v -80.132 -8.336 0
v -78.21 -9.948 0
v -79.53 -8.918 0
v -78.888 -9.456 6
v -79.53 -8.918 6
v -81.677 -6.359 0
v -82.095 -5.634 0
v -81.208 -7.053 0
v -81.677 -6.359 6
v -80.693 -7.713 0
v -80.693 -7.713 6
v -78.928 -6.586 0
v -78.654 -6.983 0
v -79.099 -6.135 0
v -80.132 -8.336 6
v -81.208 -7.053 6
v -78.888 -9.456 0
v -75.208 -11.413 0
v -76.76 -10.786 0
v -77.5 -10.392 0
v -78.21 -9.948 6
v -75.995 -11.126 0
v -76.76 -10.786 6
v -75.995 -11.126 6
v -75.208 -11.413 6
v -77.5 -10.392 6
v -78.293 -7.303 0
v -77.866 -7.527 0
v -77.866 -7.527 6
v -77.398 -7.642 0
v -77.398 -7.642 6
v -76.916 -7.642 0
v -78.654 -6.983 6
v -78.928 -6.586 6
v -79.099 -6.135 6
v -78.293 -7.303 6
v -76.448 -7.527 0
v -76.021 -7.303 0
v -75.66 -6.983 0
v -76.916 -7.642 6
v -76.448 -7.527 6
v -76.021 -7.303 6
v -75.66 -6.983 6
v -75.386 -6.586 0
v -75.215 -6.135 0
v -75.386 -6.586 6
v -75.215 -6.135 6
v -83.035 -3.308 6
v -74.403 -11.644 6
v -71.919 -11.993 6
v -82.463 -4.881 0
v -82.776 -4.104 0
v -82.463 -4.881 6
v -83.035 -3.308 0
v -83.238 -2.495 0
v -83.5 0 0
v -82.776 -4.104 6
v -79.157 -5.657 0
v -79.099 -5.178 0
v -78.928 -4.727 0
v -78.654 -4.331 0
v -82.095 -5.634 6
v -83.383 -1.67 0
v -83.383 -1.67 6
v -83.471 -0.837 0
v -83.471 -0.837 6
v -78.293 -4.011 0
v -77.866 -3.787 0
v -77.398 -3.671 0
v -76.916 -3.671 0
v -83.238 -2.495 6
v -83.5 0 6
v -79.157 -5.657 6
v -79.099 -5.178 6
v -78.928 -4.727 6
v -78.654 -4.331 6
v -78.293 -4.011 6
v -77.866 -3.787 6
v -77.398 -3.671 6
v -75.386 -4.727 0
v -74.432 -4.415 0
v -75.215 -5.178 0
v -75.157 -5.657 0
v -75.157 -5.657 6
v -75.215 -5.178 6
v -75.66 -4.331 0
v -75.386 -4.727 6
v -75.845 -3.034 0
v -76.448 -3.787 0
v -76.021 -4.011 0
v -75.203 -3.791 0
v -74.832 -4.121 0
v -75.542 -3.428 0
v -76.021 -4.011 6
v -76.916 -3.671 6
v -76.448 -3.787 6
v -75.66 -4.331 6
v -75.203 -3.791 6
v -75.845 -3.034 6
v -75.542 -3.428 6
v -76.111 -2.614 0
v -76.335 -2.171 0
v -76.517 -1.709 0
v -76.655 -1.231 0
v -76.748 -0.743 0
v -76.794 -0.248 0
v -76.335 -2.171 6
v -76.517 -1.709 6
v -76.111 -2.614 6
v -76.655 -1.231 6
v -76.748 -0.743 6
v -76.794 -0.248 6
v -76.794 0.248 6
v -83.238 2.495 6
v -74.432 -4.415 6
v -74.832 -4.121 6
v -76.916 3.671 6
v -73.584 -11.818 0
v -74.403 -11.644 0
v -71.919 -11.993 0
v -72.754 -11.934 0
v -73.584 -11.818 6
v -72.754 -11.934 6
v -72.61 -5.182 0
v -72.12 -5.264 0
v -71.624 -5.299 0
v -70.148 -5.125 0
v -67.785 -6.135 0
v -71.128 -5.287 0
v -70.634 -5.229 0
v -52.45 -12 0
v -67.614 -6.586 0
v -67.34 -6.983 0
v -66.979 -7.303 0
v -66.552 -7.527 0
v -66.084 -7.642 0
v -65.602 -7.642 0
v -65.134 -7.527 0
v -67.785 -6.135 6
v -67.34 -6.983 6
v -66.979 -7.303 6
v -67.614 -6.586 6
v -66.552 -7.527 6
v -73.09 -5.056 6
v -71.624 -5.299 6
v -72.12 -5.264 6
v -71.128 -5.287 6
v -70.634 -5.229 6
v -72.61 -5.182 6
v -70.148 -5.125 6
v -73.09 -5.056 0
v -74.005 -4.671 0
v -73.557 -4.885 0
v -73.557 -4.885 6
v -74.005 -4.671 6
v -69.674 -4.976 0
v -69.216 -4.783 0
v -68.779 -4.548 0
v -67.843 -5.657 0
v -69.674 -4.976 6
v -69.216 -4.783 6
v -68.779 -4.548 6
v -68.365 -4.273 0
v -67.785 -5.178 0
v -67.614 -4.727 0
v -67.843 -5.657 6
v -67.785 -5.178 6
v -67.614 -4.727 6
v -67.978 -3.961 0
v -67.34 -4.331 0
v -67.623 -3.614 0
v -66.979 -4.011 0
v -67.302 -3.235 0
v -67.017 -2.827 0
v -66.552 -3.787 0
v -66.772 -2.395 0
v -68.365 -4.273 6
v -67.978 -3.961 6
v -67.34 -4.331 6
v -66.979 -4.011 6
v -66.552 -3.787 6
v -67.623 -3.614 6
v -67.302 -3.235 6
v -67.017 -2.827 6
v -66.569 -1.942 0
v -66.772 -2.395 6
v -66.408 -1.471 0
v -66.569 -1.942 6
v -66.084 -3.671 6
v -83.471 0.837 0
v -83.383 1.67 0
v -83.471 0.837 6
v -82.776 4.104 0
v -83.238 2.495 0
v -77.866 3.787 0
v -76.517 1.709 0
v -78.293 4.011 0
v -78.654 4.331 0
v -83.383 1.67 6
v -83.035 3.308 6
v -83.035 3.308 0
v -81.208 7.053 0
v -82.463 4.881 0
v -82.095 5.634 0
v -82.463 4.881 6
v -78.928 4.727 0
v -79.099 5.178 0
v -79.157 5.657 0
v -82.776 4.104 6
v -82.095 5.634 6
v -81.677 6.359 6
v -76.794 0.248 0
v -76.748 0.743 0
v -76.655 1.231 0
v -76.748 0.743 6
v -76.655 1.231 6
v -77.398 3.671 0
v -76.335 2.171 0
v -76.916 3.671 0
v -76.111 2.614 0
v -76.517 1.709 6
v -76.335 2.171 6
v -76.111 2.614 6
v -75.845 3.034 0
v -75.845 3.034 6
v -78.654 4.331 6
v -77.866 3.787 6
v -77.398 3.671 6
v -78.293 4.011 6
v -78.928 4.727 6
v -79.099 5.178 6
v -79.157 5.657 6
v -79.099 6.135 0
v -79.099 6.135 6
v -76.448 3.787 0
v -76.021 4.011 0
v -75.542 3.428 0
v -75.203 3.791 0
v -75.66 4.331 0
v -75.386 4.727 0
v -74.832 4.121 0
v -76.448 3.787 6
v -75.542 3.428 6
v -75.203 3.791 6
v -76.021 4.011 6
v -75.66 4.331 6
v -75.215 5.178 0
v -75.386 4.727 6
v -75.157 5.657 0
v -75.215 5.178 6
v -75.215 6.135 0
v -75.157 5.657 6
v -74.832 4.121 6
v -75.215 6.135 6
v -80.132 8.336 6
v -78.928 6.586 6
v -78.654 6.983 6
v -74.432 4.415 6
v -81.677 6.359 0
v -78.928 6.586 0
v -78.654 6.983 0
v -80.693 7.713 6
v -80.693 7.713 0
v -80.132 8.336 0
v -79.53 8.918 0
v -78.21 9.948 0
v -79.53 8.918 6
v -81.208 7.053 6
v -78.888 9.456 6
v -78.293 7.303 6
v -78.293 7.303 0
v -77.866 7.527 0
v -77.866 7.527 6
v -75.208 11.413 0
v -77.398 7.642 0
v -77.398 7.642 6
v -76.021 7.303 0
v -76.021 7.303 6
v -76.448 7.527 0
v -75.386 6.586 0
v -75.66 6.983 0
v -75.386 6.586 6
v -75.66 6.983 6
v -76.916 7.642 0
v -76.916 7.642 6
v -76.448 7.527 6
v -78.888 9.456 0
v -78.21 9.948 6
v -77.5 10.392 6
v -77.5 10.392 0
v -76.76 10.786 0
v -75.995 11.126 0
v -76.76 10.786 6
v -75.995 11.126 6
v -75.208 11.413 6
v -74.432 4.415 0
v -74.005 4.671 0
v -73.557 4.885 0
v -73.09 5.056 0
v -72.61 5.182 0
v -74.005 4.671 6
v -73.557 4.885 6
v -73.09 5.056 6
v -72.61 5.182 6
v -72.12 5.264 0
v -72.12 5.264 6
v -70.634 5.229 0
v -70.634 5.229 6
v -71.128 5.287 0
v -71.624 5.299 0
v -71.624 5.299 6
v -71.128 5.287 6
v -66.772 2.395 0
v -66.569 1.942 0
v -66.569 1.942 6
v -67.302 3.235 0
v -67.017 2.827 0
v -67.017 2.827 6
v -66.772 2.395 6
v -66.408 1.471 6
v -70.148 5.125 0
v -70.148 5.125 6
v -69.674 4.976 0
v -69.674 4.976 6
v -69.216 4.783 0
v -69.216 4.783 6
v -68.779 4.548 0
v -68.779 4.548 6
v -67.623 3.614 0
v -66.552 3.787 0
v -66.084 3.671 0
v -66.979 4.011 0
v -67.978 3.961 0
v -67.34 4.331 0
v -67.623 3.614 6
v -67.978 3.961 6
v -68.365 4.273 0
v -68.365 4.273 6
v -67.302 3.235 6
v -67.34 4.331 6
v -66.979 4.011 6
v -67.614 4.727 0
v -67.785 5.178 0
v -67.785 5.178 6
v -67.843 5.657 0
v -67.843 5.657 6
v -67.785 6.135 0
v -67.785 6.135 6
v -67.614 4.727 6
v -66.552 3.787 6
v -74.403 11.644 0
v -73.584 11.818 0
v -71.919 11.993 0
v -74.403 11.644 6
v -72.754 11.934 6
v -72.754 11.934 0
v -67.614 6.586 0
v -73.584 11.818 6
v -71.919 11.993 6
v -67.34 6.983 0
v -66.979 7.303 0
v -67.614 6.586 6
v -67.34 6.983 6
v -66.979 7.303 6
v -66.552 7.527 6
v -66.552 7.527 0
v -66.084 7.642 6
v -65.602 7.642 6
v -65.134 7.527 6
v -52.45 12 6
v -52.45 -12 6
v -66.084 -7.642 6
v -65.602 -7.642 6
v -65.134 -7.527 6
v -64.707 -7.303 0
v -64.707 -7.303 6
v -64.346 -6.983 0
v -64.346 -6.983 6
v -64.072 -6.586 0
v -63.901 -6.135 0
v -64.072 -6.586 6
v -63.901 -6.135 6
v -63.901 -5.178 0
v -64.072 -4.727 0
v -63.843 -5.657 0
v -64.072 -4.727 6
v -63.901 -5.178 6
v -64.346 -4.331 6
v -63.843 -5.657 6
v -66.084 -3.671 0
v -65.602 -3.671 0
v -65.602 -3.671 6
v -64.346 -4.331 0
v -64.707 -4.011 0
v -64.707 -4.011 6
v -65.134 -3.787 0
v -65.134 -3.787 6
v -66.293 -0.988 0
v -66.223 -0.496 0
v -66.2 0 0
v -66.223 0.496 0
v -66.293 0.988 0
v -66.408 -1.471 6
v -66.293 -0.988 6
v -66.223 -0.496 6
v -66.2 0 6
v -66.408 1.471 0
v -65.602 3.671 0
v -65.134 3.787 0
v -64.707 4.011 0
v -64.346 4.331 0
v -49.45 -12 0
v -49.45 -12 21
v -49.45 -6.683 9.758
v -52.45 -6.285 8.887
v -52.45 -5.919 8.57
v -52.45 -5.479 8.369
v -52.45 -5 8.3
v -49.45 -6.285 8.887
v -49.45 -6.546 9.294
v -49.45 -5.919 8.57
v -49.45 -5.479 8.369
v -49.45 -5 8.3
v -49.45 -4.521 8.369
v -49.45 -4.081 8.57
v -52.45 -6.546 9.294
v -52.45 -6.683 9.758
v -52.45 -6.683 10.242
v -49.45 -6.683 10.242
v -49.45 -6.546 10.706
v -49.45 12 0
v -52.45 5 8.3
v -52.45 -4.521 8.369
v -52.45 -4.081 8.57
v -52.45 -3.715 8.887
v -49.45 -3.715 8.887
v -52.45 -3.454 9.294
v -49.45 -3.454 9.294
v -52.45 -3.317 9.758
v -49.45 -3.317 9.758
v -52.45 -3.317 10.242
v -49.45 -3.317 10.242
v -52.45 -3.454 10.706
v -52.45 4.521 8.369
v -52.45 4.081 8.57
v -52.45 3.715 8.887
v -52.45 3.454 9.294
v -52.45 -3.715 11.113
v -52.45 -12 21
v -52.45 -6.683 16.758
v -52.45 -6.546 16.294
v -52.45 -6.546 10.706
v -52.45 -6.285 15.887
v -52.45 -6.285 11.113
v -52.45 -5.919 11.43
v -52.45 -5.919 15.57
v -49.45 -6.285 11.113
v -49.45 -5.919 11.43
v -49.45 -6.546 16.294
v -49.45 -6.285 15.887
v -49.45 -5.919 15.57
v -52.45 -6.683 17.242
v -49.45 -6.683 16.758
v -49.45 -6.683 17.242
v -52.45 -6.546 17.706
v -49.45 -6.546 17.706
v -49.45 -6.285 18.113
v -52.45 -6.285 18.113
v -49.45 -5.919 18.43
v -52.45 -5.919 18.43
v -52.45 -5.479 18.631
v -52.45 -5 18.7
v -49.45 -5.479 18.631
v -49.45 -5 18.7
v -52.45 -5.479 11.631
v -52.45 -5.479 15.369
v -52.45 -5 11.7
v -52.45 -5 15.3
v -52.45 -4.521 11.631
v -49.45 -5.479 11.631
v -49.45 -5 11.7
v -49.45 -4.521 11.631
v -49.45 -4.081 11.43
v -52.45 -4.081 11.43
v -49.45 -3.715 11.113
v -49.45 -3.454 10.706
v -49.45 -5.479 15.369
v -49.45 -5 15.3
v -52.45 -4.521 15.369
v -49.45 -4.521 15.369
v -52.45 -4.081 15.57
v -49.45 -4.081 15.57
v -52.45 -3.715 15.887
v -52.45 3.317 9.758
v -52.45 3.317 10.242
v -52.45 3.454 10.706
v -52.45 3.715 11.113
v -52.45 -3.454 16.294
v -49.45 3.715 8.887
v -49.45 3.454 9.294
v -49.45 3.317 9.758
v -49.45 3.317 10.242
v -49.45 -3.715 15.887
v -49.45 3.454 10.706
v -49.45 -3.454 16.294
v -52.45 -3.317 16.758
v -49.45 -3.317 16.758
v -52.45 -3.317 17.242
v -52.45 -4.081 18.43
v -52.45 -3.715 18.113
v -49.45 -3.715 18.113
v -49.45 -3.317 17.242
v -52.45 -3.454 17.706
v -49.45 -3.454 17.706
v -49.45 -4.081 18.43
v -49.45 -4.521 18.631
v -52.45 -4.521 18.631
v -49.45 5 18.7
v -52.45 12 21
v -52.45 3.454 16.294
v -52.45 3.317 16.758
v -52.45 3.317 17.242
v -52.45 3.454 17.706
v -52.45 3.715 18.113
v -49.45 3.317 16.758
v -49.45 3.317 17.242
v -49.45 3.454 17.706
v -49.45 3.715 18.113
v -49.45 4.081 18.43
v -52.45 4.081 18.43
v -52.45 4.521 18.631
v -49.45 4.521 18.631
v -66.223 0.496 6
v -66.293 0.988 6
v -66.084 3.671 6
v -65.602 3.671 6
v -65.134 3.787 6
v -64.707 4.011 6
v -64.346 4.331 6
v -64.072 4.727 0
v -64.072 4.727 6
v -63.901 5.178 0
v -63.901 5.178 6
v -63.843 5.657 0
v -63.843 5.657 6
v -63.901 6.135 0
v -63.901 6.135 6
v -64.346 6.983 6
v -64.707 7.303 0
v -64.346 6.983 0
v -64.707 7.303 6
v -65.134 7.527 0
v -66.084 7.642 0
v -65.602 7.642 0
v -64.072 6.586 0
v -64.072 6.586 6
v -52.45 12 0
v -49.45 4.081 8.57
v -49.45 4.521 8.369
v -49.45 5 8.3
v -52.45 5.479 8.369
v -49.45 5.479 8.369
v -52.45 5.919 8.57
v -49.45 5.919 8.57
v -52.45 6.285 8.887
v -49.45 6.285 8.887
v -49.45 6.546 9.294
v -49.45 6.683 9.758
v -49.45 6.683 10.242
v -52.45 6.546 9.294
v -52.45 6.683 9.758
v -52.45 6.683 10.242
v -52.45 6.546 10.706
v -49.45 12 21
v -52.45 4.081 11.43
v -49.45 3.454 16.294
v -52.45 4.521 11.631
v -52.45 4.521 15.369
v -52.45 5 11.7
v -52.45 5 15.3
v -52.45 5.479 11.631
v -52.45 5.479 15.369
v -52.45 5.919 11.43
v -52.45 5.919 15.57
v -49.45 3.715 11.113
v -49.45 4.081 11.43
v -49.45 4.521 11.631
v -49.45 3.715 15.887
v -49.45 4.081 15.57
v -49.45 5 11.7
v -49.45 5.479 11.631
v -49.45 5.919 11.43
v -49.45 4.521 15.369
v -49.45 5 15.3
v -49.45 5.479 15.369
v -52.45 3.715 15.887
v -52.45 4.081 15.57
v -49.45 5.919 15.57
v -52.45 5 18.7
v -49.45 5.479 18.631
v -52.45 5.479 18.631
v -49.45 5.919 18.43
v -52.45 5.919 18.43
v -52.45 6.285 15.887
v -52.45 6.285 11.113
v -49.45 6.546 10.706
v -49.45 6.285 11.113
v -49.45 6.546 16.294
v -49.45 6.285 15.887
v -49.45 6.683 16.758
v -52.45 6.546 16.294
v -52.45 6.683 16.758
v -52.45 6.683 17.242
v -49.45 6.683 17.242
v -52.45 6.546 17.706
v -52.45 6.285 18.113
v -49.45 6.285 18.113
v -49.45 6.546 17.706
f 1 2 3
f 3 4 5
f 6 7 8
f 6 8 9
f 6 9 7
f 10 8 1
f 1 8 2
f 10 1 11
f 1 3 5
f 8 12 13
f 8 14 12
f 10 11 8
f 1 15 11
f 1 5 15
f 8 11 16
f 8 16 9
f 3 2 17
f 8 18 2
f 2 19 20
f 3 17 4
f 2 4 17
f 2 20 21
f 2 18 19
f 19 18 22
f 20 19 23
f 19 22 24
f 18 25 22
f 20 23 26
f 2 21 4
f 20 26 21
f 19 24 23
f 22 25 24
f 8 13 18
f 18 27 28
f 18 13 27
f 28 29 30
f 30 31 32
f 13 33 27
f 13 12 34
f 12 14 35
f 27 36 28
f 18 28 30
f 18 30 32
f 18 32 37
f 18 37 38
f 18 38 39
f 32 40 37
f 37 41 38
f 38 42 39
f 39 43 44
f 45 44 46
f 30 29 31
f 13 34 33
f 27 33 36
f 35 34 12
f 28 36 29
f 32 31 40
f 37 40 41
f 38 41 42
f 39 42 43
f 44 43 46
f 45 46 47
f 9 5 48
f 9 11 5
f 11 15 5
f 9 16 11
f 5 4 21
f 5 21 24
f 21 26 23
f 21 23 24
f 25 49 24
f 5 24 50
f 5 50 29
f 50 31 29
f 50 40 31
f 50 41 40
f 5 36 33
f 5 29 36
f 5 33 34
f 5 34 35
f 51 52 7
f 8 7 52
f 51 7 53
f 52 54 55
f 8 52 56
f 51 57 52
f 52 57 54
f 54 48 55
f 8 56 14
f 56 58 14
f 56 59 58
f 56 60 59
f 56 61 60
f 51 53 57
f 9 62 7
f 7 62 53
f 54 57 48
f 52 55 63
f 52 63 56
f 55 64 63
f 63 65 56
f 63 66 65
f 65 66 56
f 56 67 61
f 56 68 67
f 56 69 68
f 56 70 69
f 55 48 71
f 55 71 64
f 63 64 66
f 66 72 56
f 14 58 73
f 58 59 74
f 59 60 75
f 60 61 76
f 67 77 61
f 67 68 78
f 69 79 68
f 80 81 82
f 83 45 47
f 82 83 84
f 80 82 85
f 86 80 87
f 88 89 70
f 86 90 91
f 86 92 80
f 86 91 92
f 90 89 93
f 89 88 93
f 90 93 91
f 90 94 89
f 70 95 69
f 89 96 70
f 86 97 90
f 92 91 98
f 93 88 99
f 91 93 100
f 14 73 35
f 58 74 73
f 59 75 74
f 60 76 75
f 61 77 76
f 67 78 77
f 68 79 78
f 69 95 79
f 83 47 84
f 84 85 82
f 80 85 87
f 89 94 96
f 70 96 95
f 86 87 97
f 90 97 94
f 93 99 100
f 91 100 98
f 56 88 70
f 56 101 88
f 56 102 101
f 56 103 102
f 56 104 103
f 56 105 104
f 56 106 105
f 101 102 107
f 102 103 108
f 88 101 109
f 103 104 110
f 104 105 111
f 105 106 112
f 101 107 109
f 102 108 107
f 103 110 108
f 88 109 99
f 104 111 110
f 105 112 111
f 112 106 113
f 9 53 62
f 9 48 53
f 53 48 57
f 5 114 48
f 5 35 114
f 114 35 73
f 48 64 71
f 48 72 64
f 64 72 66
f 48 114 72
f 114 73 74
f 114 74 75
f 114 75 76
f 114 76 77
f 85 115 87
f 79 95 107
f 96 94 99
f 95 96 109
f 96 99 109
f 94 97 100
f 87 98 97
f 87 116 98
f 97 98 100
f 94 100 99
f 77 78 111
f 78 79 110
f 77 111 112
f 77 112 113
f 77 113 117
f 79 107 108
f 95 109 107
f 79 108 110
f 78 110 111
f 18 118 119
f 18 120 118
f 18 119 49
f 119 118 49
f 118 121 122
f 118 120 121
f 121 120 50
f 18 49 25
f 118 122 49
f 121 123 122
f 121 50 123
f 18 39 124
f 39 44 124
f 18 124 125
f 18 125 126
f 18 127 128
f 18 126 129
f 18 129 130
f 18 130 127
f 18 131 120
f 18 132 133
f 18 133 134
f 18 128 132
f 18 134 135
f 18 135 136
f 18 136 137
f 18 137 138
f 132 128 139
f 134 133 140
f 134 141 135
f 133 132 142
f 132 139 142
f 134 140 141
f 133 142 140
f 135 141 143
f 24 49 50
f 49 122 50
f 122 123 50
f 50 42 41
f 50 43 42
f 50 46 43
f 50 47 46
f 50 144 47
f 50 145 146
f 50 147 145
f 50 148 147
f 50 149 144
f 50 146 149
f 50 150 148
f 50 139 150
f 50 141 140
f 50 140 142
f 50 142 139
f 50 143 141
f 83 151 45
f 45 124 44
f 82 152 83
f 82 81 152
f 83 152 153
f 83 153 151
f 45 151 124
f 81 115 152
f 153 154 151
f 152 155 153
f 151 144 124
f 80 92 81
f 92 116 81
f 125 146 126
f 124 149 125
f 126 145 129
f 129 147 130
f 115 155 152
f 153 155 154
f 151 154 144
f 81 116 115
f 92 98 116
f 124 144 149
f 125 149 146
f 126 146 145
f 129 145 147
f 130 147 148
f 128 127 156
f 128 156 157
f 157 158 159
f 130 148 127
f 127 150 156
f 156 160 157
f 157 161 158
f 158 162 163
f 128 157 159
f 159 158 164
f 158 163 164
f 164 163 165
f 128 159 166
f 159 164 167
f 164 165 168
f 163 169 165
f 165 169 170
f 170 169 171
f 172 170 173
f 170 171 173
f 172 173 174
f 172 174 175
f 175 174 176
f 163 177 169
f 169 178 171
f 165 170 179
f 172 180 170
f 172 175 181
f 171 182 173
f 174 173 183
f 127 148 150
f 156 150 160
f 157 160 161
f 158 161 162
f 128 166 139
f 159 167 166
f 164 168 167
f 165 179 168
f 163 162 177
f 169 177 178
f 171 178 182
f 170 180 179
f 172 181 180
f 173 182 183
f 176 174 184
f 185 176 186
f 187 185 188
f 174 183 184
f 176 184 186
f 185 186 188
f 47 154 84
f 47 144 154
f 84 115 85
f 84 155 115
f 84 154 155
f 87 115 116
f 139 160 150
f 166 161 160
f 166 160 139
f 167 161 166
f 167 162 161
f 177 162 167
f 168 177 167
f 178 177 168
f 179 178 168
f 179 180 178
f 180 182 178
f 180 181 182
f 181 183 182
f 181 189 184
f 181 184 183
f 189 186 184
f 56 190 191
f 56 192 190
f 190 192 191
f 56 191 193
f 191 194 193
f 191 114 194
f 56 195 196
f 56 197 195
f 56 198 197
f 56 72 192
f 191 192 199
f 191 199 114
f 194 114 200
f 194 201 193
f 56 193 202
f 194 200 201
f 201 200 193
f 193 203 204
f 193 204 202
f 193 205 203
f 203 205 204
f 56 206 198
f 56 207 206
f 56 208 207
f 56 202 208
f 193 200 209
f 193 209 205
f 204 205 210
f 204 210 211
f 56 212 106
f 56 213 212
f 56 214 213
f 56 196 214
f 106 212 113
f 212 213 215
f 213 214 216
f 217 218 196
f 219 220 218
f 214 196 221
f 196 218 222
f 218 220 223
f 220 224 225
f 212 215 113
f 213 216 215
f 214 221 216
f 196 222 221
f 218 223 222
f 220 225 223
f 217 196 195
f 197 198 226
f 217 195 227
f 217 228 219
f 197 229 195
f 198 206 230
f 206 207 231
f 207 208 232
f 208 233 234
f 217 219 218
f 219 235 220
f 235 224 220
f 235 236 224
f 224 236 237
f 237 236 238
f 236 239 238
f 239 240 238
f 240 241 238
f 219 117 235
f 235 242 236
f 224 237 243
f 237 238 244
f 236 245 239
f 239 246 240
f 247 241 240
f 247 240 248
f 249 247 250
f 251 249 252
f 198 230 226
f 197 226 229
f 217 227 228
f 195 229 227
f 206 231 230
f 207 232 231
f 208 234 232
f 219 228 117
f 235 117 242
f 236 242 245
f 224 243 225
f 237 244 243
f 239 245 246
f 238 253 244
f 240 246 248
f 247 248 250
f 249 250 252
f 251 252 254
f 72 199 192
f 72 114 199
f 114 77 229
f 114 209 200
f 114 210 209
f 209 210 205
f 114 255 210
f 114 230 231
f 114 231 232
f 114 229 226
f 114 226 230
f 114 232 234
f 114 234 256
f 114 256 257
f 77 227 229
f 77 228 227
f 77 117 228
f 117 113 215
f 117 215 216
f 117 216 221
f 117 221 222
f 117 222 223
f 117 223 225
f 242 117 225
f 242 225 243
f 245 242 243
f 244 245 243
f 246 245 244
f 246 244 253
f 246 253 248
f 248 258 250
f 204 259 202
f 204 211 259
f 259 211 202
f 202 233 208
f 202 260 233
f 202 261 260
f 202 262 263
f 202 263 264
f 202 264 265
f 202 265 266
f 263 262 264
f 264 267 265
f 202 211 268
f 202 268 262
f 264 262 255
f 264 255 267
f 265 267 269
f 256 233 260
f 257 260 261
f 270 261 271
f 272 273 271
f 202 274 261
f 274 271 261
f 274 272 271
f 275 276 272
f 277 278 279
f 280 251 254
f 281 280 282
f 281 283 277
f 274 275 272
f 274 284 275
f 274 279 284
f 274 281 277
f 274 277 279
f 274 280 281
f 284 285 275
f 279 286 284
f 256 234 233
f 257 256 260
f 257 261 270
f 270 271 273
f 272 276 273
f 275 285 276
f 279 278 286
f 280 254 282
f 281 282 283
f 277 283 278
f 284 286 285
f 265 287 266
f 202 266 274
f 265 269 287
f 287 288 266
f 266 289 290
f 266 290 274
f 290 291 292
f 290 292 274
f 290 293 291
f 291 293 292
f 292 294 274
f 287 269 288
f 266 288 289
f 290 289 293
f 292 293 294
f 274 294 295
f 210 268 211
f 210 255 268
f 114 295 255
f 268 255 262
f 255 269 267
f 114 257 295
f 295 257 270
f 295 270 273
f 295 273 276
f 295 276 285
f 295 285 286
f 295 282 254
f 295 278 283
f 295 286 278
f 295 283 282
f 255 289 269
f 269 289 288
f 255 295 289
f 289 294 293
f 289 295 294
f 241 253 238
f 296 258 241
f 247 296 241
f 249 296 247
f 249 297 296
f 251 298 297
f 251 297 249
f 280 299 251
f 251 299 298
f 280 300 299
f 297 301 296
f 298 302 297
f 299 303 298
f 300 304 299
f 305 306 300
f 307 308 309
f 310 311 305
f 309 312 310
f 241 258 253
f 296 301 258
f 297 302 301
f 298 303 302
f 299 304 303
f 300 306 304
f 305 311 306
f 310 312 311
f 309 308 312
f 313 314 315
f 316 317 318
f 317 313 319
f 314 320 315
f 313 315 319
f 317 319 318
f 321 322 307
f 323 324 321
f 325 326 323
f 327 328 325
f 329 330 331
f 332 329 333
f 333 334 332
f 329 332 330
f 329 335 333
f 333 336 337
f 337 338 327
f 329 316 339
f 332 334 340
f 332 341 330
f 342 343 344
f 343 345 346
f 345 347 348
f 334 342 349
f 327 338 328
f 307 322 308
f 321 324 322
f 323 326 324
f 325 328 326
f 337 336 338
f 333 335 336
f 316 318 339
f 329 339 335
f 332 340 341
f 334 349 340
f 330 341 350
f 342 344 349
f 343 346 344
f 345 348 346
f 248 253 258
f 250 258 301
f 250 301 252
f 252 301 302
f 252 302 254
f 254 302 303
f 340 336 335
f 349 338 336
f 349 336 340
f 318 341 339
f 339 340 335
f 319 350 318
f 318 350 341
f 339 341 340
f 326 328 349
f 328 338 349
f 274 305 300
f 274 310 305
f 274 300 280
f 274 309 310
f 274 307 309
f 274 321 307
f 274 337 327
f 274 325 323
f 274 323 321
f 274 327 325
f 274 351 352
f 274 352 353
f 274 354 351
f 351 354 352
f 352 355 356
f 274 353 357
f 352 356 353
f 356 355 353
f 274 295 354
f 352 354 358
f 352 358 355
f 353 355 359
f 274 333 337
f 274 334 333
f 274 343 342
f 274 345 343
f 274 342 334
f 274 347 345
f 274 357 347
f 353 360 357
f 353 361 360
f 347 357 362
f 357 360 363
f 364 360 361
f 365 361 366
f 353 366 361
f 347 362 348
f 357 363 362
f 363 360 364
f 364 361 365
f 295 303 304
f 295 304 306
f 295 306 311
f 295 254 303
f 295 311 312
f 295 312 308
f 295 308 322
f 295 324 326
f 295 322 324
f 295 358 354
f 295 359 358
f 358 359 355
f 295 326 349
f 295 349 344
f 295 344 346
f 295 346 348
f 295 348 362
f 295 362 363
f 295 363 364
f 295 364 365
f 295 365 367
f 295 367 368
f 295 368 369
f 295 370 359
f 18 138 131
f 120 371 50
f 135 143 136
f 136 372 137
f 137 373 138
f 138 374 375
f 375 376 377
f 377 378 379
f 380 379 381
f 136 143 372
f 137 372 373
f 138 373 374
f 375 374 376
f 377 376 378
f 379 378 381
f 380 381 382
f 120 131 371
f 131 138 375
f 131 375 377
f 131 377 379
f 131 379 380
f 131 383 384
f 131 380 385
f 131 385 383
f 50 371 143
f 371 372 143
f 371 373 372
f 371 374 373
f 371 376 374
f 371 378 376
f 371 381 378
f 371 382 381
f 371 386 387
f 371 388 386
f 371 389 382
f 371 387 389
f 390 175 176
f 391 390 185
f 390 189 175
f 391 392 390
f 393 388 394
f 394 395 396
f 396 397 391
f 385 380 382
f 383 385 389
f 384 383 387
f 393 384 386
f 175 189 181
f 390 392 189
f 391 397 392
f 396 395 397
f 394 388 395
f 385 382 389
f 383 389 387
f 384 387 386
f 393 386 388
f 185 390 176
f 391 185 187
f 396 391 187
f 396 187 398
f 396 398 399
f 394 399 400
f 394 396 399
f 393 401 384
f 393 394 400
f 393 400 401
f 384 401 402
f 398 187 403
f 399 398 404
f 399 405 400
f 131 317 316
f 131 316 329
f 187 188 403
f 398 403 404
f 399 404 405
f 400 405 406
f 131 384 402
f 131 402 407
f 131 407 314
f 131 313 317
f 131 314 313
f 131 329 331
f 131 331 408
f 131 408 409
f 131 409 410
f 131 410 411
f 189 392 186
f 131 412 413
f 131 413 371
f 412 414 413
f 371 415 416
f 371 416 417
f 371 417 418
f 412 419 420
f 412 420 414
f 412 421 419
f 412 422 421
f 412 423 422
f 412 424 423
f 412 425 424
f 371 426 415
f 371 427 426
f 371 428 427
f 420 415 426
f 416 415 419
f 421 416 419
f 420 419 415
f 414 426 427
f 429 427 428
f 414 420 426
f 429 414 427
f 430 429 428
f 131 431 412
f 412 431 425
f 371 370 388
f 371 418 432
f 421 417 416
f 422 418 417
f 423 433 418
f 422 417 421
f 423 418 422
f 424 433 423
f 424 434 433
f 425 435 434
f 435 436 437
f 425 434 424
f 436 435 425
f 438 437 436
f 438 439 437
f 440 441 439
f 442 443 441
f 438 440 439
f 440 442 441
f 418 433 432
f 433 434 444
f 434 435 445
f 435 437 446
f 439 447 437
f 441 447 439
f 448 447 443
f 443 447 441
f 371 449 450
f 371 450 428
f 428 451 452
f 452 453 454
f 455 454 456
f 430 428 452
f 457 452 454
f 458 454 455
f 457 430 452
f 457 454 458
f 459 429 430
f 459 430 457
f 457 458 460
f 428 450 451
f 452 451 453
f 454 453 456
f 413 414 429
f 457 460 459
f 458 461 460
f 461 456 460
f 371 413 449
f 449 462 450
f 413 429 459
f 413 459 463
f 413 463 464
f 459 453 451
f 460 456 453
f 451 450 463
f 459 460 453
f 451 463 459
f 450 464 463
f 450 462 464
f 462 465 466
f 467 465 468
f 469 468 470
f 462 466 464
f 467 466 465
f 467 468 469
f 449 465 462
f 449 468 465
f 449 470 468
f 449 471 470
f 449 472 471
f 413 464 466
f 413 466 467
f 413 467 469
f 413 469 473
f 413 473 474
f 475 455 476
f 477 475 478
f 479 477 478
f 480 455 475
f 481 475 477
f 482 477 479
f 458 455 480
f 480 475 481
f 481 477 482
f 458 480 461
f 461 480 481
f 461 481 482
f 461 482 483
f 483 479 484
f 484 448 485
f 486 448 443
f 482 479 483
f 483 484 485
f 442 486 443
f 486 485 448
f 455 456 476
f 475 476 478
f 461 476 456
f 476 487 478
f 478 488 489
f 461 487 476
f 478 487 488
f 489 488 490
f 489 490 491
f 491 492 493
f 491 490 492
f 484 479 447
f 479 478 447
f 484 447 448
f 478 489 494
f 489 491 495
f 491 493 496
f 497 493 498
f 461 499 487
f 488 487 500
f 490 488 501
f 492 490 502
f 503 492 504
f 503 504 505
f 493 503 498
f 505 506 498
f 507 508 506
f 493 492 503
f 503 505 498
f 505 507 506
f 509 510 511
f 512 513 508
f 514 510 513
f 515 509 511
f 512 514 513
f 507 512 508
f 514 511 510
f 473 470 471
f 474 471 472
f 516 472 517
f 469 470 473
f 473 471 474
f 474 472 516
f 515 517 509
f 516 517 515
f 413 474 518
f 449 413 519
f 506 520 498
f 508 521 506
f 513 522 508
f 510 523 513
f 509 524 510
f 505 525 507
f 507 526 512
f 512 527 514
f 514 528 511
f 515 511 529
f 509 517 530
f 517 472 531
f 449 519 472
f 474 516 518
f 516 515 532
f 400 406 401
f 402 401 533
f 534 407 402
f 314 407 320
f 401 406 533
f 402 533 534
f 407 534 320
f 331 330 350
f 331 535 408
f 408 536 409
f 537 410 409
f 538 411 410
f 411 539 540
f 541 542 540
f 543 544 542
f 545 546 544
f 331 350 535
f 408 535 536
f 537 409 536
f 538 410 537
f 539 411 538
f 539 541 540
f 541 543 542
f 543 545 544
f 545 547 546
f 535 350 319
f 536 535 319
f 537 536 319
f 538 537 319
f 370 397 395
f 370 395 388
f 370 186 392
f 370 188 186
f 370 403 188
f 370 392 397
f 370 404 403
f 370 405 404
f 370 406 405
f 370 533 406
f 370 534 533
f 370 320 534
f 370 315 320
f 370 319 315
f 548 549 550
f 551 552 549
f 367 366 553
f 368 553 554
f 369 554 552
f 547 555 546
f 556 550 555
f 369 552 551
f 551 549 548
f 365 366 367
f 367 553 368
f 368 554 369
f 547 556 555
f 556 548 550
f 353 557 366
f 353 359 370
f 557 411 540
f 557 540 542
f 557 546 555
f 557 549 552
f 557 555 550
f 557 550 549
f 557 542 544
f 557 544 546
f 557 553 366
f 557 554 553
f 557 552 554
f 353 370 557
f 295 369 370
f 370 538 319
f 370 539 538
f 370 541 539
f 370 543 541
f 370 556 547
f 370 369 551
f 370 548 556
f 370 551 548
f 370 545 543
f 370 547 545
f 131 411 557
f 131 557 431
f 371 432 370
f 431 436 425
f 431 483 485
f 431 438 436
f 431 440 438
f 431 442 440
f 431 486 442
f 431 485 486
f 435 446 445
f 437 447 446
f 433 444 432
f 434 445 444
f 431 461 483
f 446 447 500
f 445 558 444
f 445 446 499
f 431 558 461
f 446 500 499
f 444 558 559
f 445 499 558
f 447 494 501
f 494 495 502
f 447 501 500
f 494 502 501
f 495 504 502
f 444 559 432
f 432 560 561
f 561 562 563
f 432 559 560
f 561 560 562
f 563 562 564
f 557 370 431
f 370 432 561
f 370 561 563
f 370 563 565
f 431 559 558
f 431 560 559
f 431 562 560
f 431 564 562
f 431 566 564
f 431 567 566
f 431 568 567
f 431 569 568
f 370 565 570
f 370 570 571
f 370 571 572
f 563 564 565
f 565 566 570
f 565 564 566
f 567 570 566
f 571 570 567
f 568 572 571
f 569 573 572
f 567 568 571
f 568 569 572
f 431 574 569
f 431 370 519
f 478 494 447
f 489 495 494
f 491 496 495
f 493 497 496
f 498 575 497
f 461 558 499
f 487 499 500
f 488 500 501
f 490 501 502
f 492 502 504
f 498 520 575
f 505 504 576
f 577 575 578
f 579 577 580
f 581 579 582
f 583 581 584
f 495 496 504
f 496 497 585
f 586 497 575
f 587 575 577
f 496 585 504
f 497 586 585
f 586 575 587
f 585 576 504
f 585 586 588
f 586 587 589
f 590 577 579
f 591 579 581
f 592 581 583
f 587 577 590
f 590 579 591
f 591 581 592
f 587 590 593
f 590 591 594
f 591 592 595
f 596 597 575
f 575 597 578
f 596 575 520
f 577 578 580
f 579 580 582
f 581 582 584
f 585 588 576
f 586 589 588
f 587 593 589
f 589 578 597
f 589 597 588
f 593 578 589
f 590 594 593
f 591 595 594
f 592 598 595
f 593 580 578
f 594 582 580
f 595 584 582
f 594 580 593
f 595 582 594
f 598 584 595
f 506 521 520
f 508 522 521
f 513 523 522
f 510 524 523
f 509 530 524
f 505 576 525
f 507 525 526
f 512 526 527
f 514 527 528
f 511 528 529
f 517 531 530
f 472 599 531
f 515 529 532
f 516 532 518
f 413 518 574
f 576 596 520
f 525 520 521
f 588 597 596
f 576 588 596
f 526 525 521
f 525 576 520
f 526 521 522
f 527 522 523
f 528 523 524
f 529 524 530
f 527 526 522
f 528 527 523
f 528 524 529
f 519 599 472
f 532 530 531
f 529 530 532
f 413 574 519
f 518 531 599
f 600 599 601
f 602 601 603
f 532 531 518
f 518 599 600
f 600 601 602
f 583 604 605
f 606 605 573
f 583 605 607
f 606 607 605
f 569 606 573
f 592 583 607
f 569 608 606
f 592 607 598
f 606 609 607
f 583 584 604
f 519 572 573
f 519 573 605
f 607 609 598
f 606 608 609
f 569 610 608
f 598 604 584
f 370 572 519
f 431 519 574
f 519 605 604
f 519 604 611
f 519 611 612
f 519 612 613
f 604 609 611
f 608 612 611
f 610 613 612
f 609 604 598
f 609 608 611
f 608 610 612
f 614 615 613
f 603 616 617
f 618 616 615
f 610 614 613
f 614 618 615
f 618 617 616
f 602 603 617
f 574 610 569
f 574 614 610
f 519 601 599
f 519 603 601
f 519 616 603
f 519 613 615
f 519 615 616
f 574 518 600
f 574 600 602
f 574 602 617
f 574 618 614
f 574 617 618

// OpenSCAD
// file: lib/lib.scad
// Shared helpers. Include AFTER params.scad (needs TOL, M3_* etc.).
$fa = 4; $fs = 0.5;

module rrect(size, r) {            // 2D rounded rectangle, centred
    r2 = min(r, min(size[0], size[1]) / 2 - 0.001);
    offset(r = r2) square([size[0] - 2 * r2, size[1] - 2 * r2], center = true);
}
module rbox(size, r, center_xy = true) {   // box with rounded vertical edges
    translate(center_xy ? [0, 0, 0] : [size[0] / 2, size[1] / 2, 0])
        linear_extrude(size[2]) rrect([size[0], size[1]], r);
}
module rbox_at(x0, x1, y0, y1, z0, z1, r = 0.01) {
    translate([(x0 + x1) / 2, (y0 + y1) / 2, z0]) rbox([x1 - x0, y1 - y0, z1 - z0], r);
}
module box_at(x0, x1, y0, y1, z0, z1) { translate([x0, y0, z0]) cube([x1 - x0, y1 - y0, z1 - z0]); }

module ring(ro, ri, h) { difference() { cylinder(r = ro, h = h); translate([0, 0, -1]) cylinder(r = ri, h = h + 2); } }
module ring_sector(ro, ri, h, a0, a1) {
    intersection() {
        ring(ro, ri, h);
        linear_extrude(h) polygon(concat([[0, 0]], [for (a = [a0 : (a1 - a0) / 24 : a1]) 2 * ro * [cos(a), sin(a)]]));
    }
}
// teardrop hole along an axis lying horizontal (axis = Y after rotation), printable w/o support
module teardrop2d(d) { union() { circle(d = d); rotate(45) square(d / 2); } }
// vertical heat-set insert hole, opening at z=0 going +z (depth l)
module insert_hole(l = M3_INSERT_L) { translate([0, 0, -EPS]) cylinder(d = M3_INSERT_D, h = l + EPS); }
module m3_clear(l) { translate([0, 0, -EPS]) cylinder(d = M3_CLEAR, h = l + 2 * EPS); }
module m3_csk(l) {  // countersunk clearance from z=0 upward, head at z=0 side
    translate([0, 0, -EPS]) { cylinder(d = M3_CLEAR, h = l + 2 * EPS); cylinder(d1 = 6.4, d2 = M3_CLEAR, h = 1.7); }
}
module card2d() { rrect([CARD_L, CARD_W], CARD_R); }
module card_at(cy, z) { translate([0, cy, z]) linear_extrude(CARD_T) card2d(); }

// ---- gears ----
function _inv(a) = tan(a) - a * PI_ / 180;           // involute function, a in deg
function _invpt(rb, r, ang0, s) = let(al = acos(rb / r), th = ang0 - s * (_inv(al) * 180 / PI_)) [r * cos(th), r * sin(th)];
module involute_gear2d(m, z, pa = 20, clearance = 0.05) {
    rp = m * z / 2; rb = rp * cos(pa); ra = rp + m - clearance; rf = rp - 1.25 * m;
    half = 90 / z + _inv(pa) * 180 / PI_;            // tooth half-angle at base (deg)
    n = 8;
    rs = [for (i = [0 : n]) max(rb, rf) + (ra - max(rb, rf)) * i / n];
    union() {
        circle(r = rf, $fn = z * 4);
        for (k = [0 : z - 1]) rotate(k * 360 / z) polygon(concat(
            [[rf * cos(-half), rf * sin(-half)]],
            [for (r = rs) let(p = _invpt(rb, r, half, 1)) [p[0], -p[1]]],
            [for (i = [n : -1 : 0]) _invpt(rb, rs[i], half, 1)],
            [[rf * cos(half), rf * sin(half)]]));
    }
}
// straight gear rack (2D in XY: teeth along +x, pointing -y, pitch line at y=0)
module gear_rack2d(m, len, back = 3) {
    p = PI_ * m; ad = m; de = 1.25 * m; t = tan(20);
    n = ceil(len / p) + 1;
    intersection() {
        union() {
            translate([0, de]) square([len, back]);
            for (i = [0 : n]) translate([i * p - p / 4, 0]) polygon([
                [-(p / 4 + de * t), de + 0.01], [p / 4 + de * t + 0.01, de + 0.01],
                [p / 4 - ad * t, -ad], [-(p / 4 - ad * t), -ad] ]);
        }
        translate([0, -ad - 1]) square([len, ad + de + back + 2]);
    }
}
// GT2 belt-tooth profile ring (teeth outward), 2D
module gt2_ring2d(n, r_land, ri) {
    union() {
        difference() { circle(r = r_land + 0.01, $fn = n * 2); circle(r = ri, $fn = n * 2); }
        for (k = [0 : n - 1]) rotate(k * 360 / n)
            translate([r_land, 0]) hull() { translate([-0.2, 0]) square([0.2, 1.0], center = true); translate([0.25, 0]) circle(r = 0.5, $fn = 12); }
    }
}
// main file
// Nut arm: ties the -X comb to the T8 flange nut. Flange on top, body through the arm.
// Print: arm flat on the bed, comb flange vertical, no supports.
include <params.scad>
include <lib/lib.scad>
module rack_nut_arm() translate([0, 0, RACK_Z_MIN]) difference() {
    union() {
        hull() {
            box_at(-COMB_OUT - 3, -COMB_OUT, -12, 12, ARM_Z, ARM_Z + ARM_T);
            translate([LM_X, LM_Y, ARM_Z]) cylinder(d = NUT_FL_D + 2, h = ARM_T);
        }
        box_at(-COMB_OUT - 3, -COMB_OUT, -12, 12, ARM_Z, ARM_Z + 21);
    }
    translate([LM_X, LM_Y, ARM_Z - 1]) cylinder(d = NUT_BODY_D + 0.4, h = 20);
    for (a = [45 : 90 : 359]) translate([LM_X + NUT_PCD / 2 * cos(a), LM_Y + NUT_PCD / 2 * sin(a), ARM_Z + ARM_T - M3_INSERT_L]) insert_hole(M3_INSERT_L + 1);
    for (h = ARM_HOLES) translate([-COMB_OUT - 4, h[0], h[1]]) rotate([0, 90, 0]) cylinder(d = M3_CLEAR, h = 10);
}
module rack_nut_arm_print() translate([0, 0, -RACK_Z_MIN - ARM_Z]) rack_nut_arm();
rack_nut_arm_print();
